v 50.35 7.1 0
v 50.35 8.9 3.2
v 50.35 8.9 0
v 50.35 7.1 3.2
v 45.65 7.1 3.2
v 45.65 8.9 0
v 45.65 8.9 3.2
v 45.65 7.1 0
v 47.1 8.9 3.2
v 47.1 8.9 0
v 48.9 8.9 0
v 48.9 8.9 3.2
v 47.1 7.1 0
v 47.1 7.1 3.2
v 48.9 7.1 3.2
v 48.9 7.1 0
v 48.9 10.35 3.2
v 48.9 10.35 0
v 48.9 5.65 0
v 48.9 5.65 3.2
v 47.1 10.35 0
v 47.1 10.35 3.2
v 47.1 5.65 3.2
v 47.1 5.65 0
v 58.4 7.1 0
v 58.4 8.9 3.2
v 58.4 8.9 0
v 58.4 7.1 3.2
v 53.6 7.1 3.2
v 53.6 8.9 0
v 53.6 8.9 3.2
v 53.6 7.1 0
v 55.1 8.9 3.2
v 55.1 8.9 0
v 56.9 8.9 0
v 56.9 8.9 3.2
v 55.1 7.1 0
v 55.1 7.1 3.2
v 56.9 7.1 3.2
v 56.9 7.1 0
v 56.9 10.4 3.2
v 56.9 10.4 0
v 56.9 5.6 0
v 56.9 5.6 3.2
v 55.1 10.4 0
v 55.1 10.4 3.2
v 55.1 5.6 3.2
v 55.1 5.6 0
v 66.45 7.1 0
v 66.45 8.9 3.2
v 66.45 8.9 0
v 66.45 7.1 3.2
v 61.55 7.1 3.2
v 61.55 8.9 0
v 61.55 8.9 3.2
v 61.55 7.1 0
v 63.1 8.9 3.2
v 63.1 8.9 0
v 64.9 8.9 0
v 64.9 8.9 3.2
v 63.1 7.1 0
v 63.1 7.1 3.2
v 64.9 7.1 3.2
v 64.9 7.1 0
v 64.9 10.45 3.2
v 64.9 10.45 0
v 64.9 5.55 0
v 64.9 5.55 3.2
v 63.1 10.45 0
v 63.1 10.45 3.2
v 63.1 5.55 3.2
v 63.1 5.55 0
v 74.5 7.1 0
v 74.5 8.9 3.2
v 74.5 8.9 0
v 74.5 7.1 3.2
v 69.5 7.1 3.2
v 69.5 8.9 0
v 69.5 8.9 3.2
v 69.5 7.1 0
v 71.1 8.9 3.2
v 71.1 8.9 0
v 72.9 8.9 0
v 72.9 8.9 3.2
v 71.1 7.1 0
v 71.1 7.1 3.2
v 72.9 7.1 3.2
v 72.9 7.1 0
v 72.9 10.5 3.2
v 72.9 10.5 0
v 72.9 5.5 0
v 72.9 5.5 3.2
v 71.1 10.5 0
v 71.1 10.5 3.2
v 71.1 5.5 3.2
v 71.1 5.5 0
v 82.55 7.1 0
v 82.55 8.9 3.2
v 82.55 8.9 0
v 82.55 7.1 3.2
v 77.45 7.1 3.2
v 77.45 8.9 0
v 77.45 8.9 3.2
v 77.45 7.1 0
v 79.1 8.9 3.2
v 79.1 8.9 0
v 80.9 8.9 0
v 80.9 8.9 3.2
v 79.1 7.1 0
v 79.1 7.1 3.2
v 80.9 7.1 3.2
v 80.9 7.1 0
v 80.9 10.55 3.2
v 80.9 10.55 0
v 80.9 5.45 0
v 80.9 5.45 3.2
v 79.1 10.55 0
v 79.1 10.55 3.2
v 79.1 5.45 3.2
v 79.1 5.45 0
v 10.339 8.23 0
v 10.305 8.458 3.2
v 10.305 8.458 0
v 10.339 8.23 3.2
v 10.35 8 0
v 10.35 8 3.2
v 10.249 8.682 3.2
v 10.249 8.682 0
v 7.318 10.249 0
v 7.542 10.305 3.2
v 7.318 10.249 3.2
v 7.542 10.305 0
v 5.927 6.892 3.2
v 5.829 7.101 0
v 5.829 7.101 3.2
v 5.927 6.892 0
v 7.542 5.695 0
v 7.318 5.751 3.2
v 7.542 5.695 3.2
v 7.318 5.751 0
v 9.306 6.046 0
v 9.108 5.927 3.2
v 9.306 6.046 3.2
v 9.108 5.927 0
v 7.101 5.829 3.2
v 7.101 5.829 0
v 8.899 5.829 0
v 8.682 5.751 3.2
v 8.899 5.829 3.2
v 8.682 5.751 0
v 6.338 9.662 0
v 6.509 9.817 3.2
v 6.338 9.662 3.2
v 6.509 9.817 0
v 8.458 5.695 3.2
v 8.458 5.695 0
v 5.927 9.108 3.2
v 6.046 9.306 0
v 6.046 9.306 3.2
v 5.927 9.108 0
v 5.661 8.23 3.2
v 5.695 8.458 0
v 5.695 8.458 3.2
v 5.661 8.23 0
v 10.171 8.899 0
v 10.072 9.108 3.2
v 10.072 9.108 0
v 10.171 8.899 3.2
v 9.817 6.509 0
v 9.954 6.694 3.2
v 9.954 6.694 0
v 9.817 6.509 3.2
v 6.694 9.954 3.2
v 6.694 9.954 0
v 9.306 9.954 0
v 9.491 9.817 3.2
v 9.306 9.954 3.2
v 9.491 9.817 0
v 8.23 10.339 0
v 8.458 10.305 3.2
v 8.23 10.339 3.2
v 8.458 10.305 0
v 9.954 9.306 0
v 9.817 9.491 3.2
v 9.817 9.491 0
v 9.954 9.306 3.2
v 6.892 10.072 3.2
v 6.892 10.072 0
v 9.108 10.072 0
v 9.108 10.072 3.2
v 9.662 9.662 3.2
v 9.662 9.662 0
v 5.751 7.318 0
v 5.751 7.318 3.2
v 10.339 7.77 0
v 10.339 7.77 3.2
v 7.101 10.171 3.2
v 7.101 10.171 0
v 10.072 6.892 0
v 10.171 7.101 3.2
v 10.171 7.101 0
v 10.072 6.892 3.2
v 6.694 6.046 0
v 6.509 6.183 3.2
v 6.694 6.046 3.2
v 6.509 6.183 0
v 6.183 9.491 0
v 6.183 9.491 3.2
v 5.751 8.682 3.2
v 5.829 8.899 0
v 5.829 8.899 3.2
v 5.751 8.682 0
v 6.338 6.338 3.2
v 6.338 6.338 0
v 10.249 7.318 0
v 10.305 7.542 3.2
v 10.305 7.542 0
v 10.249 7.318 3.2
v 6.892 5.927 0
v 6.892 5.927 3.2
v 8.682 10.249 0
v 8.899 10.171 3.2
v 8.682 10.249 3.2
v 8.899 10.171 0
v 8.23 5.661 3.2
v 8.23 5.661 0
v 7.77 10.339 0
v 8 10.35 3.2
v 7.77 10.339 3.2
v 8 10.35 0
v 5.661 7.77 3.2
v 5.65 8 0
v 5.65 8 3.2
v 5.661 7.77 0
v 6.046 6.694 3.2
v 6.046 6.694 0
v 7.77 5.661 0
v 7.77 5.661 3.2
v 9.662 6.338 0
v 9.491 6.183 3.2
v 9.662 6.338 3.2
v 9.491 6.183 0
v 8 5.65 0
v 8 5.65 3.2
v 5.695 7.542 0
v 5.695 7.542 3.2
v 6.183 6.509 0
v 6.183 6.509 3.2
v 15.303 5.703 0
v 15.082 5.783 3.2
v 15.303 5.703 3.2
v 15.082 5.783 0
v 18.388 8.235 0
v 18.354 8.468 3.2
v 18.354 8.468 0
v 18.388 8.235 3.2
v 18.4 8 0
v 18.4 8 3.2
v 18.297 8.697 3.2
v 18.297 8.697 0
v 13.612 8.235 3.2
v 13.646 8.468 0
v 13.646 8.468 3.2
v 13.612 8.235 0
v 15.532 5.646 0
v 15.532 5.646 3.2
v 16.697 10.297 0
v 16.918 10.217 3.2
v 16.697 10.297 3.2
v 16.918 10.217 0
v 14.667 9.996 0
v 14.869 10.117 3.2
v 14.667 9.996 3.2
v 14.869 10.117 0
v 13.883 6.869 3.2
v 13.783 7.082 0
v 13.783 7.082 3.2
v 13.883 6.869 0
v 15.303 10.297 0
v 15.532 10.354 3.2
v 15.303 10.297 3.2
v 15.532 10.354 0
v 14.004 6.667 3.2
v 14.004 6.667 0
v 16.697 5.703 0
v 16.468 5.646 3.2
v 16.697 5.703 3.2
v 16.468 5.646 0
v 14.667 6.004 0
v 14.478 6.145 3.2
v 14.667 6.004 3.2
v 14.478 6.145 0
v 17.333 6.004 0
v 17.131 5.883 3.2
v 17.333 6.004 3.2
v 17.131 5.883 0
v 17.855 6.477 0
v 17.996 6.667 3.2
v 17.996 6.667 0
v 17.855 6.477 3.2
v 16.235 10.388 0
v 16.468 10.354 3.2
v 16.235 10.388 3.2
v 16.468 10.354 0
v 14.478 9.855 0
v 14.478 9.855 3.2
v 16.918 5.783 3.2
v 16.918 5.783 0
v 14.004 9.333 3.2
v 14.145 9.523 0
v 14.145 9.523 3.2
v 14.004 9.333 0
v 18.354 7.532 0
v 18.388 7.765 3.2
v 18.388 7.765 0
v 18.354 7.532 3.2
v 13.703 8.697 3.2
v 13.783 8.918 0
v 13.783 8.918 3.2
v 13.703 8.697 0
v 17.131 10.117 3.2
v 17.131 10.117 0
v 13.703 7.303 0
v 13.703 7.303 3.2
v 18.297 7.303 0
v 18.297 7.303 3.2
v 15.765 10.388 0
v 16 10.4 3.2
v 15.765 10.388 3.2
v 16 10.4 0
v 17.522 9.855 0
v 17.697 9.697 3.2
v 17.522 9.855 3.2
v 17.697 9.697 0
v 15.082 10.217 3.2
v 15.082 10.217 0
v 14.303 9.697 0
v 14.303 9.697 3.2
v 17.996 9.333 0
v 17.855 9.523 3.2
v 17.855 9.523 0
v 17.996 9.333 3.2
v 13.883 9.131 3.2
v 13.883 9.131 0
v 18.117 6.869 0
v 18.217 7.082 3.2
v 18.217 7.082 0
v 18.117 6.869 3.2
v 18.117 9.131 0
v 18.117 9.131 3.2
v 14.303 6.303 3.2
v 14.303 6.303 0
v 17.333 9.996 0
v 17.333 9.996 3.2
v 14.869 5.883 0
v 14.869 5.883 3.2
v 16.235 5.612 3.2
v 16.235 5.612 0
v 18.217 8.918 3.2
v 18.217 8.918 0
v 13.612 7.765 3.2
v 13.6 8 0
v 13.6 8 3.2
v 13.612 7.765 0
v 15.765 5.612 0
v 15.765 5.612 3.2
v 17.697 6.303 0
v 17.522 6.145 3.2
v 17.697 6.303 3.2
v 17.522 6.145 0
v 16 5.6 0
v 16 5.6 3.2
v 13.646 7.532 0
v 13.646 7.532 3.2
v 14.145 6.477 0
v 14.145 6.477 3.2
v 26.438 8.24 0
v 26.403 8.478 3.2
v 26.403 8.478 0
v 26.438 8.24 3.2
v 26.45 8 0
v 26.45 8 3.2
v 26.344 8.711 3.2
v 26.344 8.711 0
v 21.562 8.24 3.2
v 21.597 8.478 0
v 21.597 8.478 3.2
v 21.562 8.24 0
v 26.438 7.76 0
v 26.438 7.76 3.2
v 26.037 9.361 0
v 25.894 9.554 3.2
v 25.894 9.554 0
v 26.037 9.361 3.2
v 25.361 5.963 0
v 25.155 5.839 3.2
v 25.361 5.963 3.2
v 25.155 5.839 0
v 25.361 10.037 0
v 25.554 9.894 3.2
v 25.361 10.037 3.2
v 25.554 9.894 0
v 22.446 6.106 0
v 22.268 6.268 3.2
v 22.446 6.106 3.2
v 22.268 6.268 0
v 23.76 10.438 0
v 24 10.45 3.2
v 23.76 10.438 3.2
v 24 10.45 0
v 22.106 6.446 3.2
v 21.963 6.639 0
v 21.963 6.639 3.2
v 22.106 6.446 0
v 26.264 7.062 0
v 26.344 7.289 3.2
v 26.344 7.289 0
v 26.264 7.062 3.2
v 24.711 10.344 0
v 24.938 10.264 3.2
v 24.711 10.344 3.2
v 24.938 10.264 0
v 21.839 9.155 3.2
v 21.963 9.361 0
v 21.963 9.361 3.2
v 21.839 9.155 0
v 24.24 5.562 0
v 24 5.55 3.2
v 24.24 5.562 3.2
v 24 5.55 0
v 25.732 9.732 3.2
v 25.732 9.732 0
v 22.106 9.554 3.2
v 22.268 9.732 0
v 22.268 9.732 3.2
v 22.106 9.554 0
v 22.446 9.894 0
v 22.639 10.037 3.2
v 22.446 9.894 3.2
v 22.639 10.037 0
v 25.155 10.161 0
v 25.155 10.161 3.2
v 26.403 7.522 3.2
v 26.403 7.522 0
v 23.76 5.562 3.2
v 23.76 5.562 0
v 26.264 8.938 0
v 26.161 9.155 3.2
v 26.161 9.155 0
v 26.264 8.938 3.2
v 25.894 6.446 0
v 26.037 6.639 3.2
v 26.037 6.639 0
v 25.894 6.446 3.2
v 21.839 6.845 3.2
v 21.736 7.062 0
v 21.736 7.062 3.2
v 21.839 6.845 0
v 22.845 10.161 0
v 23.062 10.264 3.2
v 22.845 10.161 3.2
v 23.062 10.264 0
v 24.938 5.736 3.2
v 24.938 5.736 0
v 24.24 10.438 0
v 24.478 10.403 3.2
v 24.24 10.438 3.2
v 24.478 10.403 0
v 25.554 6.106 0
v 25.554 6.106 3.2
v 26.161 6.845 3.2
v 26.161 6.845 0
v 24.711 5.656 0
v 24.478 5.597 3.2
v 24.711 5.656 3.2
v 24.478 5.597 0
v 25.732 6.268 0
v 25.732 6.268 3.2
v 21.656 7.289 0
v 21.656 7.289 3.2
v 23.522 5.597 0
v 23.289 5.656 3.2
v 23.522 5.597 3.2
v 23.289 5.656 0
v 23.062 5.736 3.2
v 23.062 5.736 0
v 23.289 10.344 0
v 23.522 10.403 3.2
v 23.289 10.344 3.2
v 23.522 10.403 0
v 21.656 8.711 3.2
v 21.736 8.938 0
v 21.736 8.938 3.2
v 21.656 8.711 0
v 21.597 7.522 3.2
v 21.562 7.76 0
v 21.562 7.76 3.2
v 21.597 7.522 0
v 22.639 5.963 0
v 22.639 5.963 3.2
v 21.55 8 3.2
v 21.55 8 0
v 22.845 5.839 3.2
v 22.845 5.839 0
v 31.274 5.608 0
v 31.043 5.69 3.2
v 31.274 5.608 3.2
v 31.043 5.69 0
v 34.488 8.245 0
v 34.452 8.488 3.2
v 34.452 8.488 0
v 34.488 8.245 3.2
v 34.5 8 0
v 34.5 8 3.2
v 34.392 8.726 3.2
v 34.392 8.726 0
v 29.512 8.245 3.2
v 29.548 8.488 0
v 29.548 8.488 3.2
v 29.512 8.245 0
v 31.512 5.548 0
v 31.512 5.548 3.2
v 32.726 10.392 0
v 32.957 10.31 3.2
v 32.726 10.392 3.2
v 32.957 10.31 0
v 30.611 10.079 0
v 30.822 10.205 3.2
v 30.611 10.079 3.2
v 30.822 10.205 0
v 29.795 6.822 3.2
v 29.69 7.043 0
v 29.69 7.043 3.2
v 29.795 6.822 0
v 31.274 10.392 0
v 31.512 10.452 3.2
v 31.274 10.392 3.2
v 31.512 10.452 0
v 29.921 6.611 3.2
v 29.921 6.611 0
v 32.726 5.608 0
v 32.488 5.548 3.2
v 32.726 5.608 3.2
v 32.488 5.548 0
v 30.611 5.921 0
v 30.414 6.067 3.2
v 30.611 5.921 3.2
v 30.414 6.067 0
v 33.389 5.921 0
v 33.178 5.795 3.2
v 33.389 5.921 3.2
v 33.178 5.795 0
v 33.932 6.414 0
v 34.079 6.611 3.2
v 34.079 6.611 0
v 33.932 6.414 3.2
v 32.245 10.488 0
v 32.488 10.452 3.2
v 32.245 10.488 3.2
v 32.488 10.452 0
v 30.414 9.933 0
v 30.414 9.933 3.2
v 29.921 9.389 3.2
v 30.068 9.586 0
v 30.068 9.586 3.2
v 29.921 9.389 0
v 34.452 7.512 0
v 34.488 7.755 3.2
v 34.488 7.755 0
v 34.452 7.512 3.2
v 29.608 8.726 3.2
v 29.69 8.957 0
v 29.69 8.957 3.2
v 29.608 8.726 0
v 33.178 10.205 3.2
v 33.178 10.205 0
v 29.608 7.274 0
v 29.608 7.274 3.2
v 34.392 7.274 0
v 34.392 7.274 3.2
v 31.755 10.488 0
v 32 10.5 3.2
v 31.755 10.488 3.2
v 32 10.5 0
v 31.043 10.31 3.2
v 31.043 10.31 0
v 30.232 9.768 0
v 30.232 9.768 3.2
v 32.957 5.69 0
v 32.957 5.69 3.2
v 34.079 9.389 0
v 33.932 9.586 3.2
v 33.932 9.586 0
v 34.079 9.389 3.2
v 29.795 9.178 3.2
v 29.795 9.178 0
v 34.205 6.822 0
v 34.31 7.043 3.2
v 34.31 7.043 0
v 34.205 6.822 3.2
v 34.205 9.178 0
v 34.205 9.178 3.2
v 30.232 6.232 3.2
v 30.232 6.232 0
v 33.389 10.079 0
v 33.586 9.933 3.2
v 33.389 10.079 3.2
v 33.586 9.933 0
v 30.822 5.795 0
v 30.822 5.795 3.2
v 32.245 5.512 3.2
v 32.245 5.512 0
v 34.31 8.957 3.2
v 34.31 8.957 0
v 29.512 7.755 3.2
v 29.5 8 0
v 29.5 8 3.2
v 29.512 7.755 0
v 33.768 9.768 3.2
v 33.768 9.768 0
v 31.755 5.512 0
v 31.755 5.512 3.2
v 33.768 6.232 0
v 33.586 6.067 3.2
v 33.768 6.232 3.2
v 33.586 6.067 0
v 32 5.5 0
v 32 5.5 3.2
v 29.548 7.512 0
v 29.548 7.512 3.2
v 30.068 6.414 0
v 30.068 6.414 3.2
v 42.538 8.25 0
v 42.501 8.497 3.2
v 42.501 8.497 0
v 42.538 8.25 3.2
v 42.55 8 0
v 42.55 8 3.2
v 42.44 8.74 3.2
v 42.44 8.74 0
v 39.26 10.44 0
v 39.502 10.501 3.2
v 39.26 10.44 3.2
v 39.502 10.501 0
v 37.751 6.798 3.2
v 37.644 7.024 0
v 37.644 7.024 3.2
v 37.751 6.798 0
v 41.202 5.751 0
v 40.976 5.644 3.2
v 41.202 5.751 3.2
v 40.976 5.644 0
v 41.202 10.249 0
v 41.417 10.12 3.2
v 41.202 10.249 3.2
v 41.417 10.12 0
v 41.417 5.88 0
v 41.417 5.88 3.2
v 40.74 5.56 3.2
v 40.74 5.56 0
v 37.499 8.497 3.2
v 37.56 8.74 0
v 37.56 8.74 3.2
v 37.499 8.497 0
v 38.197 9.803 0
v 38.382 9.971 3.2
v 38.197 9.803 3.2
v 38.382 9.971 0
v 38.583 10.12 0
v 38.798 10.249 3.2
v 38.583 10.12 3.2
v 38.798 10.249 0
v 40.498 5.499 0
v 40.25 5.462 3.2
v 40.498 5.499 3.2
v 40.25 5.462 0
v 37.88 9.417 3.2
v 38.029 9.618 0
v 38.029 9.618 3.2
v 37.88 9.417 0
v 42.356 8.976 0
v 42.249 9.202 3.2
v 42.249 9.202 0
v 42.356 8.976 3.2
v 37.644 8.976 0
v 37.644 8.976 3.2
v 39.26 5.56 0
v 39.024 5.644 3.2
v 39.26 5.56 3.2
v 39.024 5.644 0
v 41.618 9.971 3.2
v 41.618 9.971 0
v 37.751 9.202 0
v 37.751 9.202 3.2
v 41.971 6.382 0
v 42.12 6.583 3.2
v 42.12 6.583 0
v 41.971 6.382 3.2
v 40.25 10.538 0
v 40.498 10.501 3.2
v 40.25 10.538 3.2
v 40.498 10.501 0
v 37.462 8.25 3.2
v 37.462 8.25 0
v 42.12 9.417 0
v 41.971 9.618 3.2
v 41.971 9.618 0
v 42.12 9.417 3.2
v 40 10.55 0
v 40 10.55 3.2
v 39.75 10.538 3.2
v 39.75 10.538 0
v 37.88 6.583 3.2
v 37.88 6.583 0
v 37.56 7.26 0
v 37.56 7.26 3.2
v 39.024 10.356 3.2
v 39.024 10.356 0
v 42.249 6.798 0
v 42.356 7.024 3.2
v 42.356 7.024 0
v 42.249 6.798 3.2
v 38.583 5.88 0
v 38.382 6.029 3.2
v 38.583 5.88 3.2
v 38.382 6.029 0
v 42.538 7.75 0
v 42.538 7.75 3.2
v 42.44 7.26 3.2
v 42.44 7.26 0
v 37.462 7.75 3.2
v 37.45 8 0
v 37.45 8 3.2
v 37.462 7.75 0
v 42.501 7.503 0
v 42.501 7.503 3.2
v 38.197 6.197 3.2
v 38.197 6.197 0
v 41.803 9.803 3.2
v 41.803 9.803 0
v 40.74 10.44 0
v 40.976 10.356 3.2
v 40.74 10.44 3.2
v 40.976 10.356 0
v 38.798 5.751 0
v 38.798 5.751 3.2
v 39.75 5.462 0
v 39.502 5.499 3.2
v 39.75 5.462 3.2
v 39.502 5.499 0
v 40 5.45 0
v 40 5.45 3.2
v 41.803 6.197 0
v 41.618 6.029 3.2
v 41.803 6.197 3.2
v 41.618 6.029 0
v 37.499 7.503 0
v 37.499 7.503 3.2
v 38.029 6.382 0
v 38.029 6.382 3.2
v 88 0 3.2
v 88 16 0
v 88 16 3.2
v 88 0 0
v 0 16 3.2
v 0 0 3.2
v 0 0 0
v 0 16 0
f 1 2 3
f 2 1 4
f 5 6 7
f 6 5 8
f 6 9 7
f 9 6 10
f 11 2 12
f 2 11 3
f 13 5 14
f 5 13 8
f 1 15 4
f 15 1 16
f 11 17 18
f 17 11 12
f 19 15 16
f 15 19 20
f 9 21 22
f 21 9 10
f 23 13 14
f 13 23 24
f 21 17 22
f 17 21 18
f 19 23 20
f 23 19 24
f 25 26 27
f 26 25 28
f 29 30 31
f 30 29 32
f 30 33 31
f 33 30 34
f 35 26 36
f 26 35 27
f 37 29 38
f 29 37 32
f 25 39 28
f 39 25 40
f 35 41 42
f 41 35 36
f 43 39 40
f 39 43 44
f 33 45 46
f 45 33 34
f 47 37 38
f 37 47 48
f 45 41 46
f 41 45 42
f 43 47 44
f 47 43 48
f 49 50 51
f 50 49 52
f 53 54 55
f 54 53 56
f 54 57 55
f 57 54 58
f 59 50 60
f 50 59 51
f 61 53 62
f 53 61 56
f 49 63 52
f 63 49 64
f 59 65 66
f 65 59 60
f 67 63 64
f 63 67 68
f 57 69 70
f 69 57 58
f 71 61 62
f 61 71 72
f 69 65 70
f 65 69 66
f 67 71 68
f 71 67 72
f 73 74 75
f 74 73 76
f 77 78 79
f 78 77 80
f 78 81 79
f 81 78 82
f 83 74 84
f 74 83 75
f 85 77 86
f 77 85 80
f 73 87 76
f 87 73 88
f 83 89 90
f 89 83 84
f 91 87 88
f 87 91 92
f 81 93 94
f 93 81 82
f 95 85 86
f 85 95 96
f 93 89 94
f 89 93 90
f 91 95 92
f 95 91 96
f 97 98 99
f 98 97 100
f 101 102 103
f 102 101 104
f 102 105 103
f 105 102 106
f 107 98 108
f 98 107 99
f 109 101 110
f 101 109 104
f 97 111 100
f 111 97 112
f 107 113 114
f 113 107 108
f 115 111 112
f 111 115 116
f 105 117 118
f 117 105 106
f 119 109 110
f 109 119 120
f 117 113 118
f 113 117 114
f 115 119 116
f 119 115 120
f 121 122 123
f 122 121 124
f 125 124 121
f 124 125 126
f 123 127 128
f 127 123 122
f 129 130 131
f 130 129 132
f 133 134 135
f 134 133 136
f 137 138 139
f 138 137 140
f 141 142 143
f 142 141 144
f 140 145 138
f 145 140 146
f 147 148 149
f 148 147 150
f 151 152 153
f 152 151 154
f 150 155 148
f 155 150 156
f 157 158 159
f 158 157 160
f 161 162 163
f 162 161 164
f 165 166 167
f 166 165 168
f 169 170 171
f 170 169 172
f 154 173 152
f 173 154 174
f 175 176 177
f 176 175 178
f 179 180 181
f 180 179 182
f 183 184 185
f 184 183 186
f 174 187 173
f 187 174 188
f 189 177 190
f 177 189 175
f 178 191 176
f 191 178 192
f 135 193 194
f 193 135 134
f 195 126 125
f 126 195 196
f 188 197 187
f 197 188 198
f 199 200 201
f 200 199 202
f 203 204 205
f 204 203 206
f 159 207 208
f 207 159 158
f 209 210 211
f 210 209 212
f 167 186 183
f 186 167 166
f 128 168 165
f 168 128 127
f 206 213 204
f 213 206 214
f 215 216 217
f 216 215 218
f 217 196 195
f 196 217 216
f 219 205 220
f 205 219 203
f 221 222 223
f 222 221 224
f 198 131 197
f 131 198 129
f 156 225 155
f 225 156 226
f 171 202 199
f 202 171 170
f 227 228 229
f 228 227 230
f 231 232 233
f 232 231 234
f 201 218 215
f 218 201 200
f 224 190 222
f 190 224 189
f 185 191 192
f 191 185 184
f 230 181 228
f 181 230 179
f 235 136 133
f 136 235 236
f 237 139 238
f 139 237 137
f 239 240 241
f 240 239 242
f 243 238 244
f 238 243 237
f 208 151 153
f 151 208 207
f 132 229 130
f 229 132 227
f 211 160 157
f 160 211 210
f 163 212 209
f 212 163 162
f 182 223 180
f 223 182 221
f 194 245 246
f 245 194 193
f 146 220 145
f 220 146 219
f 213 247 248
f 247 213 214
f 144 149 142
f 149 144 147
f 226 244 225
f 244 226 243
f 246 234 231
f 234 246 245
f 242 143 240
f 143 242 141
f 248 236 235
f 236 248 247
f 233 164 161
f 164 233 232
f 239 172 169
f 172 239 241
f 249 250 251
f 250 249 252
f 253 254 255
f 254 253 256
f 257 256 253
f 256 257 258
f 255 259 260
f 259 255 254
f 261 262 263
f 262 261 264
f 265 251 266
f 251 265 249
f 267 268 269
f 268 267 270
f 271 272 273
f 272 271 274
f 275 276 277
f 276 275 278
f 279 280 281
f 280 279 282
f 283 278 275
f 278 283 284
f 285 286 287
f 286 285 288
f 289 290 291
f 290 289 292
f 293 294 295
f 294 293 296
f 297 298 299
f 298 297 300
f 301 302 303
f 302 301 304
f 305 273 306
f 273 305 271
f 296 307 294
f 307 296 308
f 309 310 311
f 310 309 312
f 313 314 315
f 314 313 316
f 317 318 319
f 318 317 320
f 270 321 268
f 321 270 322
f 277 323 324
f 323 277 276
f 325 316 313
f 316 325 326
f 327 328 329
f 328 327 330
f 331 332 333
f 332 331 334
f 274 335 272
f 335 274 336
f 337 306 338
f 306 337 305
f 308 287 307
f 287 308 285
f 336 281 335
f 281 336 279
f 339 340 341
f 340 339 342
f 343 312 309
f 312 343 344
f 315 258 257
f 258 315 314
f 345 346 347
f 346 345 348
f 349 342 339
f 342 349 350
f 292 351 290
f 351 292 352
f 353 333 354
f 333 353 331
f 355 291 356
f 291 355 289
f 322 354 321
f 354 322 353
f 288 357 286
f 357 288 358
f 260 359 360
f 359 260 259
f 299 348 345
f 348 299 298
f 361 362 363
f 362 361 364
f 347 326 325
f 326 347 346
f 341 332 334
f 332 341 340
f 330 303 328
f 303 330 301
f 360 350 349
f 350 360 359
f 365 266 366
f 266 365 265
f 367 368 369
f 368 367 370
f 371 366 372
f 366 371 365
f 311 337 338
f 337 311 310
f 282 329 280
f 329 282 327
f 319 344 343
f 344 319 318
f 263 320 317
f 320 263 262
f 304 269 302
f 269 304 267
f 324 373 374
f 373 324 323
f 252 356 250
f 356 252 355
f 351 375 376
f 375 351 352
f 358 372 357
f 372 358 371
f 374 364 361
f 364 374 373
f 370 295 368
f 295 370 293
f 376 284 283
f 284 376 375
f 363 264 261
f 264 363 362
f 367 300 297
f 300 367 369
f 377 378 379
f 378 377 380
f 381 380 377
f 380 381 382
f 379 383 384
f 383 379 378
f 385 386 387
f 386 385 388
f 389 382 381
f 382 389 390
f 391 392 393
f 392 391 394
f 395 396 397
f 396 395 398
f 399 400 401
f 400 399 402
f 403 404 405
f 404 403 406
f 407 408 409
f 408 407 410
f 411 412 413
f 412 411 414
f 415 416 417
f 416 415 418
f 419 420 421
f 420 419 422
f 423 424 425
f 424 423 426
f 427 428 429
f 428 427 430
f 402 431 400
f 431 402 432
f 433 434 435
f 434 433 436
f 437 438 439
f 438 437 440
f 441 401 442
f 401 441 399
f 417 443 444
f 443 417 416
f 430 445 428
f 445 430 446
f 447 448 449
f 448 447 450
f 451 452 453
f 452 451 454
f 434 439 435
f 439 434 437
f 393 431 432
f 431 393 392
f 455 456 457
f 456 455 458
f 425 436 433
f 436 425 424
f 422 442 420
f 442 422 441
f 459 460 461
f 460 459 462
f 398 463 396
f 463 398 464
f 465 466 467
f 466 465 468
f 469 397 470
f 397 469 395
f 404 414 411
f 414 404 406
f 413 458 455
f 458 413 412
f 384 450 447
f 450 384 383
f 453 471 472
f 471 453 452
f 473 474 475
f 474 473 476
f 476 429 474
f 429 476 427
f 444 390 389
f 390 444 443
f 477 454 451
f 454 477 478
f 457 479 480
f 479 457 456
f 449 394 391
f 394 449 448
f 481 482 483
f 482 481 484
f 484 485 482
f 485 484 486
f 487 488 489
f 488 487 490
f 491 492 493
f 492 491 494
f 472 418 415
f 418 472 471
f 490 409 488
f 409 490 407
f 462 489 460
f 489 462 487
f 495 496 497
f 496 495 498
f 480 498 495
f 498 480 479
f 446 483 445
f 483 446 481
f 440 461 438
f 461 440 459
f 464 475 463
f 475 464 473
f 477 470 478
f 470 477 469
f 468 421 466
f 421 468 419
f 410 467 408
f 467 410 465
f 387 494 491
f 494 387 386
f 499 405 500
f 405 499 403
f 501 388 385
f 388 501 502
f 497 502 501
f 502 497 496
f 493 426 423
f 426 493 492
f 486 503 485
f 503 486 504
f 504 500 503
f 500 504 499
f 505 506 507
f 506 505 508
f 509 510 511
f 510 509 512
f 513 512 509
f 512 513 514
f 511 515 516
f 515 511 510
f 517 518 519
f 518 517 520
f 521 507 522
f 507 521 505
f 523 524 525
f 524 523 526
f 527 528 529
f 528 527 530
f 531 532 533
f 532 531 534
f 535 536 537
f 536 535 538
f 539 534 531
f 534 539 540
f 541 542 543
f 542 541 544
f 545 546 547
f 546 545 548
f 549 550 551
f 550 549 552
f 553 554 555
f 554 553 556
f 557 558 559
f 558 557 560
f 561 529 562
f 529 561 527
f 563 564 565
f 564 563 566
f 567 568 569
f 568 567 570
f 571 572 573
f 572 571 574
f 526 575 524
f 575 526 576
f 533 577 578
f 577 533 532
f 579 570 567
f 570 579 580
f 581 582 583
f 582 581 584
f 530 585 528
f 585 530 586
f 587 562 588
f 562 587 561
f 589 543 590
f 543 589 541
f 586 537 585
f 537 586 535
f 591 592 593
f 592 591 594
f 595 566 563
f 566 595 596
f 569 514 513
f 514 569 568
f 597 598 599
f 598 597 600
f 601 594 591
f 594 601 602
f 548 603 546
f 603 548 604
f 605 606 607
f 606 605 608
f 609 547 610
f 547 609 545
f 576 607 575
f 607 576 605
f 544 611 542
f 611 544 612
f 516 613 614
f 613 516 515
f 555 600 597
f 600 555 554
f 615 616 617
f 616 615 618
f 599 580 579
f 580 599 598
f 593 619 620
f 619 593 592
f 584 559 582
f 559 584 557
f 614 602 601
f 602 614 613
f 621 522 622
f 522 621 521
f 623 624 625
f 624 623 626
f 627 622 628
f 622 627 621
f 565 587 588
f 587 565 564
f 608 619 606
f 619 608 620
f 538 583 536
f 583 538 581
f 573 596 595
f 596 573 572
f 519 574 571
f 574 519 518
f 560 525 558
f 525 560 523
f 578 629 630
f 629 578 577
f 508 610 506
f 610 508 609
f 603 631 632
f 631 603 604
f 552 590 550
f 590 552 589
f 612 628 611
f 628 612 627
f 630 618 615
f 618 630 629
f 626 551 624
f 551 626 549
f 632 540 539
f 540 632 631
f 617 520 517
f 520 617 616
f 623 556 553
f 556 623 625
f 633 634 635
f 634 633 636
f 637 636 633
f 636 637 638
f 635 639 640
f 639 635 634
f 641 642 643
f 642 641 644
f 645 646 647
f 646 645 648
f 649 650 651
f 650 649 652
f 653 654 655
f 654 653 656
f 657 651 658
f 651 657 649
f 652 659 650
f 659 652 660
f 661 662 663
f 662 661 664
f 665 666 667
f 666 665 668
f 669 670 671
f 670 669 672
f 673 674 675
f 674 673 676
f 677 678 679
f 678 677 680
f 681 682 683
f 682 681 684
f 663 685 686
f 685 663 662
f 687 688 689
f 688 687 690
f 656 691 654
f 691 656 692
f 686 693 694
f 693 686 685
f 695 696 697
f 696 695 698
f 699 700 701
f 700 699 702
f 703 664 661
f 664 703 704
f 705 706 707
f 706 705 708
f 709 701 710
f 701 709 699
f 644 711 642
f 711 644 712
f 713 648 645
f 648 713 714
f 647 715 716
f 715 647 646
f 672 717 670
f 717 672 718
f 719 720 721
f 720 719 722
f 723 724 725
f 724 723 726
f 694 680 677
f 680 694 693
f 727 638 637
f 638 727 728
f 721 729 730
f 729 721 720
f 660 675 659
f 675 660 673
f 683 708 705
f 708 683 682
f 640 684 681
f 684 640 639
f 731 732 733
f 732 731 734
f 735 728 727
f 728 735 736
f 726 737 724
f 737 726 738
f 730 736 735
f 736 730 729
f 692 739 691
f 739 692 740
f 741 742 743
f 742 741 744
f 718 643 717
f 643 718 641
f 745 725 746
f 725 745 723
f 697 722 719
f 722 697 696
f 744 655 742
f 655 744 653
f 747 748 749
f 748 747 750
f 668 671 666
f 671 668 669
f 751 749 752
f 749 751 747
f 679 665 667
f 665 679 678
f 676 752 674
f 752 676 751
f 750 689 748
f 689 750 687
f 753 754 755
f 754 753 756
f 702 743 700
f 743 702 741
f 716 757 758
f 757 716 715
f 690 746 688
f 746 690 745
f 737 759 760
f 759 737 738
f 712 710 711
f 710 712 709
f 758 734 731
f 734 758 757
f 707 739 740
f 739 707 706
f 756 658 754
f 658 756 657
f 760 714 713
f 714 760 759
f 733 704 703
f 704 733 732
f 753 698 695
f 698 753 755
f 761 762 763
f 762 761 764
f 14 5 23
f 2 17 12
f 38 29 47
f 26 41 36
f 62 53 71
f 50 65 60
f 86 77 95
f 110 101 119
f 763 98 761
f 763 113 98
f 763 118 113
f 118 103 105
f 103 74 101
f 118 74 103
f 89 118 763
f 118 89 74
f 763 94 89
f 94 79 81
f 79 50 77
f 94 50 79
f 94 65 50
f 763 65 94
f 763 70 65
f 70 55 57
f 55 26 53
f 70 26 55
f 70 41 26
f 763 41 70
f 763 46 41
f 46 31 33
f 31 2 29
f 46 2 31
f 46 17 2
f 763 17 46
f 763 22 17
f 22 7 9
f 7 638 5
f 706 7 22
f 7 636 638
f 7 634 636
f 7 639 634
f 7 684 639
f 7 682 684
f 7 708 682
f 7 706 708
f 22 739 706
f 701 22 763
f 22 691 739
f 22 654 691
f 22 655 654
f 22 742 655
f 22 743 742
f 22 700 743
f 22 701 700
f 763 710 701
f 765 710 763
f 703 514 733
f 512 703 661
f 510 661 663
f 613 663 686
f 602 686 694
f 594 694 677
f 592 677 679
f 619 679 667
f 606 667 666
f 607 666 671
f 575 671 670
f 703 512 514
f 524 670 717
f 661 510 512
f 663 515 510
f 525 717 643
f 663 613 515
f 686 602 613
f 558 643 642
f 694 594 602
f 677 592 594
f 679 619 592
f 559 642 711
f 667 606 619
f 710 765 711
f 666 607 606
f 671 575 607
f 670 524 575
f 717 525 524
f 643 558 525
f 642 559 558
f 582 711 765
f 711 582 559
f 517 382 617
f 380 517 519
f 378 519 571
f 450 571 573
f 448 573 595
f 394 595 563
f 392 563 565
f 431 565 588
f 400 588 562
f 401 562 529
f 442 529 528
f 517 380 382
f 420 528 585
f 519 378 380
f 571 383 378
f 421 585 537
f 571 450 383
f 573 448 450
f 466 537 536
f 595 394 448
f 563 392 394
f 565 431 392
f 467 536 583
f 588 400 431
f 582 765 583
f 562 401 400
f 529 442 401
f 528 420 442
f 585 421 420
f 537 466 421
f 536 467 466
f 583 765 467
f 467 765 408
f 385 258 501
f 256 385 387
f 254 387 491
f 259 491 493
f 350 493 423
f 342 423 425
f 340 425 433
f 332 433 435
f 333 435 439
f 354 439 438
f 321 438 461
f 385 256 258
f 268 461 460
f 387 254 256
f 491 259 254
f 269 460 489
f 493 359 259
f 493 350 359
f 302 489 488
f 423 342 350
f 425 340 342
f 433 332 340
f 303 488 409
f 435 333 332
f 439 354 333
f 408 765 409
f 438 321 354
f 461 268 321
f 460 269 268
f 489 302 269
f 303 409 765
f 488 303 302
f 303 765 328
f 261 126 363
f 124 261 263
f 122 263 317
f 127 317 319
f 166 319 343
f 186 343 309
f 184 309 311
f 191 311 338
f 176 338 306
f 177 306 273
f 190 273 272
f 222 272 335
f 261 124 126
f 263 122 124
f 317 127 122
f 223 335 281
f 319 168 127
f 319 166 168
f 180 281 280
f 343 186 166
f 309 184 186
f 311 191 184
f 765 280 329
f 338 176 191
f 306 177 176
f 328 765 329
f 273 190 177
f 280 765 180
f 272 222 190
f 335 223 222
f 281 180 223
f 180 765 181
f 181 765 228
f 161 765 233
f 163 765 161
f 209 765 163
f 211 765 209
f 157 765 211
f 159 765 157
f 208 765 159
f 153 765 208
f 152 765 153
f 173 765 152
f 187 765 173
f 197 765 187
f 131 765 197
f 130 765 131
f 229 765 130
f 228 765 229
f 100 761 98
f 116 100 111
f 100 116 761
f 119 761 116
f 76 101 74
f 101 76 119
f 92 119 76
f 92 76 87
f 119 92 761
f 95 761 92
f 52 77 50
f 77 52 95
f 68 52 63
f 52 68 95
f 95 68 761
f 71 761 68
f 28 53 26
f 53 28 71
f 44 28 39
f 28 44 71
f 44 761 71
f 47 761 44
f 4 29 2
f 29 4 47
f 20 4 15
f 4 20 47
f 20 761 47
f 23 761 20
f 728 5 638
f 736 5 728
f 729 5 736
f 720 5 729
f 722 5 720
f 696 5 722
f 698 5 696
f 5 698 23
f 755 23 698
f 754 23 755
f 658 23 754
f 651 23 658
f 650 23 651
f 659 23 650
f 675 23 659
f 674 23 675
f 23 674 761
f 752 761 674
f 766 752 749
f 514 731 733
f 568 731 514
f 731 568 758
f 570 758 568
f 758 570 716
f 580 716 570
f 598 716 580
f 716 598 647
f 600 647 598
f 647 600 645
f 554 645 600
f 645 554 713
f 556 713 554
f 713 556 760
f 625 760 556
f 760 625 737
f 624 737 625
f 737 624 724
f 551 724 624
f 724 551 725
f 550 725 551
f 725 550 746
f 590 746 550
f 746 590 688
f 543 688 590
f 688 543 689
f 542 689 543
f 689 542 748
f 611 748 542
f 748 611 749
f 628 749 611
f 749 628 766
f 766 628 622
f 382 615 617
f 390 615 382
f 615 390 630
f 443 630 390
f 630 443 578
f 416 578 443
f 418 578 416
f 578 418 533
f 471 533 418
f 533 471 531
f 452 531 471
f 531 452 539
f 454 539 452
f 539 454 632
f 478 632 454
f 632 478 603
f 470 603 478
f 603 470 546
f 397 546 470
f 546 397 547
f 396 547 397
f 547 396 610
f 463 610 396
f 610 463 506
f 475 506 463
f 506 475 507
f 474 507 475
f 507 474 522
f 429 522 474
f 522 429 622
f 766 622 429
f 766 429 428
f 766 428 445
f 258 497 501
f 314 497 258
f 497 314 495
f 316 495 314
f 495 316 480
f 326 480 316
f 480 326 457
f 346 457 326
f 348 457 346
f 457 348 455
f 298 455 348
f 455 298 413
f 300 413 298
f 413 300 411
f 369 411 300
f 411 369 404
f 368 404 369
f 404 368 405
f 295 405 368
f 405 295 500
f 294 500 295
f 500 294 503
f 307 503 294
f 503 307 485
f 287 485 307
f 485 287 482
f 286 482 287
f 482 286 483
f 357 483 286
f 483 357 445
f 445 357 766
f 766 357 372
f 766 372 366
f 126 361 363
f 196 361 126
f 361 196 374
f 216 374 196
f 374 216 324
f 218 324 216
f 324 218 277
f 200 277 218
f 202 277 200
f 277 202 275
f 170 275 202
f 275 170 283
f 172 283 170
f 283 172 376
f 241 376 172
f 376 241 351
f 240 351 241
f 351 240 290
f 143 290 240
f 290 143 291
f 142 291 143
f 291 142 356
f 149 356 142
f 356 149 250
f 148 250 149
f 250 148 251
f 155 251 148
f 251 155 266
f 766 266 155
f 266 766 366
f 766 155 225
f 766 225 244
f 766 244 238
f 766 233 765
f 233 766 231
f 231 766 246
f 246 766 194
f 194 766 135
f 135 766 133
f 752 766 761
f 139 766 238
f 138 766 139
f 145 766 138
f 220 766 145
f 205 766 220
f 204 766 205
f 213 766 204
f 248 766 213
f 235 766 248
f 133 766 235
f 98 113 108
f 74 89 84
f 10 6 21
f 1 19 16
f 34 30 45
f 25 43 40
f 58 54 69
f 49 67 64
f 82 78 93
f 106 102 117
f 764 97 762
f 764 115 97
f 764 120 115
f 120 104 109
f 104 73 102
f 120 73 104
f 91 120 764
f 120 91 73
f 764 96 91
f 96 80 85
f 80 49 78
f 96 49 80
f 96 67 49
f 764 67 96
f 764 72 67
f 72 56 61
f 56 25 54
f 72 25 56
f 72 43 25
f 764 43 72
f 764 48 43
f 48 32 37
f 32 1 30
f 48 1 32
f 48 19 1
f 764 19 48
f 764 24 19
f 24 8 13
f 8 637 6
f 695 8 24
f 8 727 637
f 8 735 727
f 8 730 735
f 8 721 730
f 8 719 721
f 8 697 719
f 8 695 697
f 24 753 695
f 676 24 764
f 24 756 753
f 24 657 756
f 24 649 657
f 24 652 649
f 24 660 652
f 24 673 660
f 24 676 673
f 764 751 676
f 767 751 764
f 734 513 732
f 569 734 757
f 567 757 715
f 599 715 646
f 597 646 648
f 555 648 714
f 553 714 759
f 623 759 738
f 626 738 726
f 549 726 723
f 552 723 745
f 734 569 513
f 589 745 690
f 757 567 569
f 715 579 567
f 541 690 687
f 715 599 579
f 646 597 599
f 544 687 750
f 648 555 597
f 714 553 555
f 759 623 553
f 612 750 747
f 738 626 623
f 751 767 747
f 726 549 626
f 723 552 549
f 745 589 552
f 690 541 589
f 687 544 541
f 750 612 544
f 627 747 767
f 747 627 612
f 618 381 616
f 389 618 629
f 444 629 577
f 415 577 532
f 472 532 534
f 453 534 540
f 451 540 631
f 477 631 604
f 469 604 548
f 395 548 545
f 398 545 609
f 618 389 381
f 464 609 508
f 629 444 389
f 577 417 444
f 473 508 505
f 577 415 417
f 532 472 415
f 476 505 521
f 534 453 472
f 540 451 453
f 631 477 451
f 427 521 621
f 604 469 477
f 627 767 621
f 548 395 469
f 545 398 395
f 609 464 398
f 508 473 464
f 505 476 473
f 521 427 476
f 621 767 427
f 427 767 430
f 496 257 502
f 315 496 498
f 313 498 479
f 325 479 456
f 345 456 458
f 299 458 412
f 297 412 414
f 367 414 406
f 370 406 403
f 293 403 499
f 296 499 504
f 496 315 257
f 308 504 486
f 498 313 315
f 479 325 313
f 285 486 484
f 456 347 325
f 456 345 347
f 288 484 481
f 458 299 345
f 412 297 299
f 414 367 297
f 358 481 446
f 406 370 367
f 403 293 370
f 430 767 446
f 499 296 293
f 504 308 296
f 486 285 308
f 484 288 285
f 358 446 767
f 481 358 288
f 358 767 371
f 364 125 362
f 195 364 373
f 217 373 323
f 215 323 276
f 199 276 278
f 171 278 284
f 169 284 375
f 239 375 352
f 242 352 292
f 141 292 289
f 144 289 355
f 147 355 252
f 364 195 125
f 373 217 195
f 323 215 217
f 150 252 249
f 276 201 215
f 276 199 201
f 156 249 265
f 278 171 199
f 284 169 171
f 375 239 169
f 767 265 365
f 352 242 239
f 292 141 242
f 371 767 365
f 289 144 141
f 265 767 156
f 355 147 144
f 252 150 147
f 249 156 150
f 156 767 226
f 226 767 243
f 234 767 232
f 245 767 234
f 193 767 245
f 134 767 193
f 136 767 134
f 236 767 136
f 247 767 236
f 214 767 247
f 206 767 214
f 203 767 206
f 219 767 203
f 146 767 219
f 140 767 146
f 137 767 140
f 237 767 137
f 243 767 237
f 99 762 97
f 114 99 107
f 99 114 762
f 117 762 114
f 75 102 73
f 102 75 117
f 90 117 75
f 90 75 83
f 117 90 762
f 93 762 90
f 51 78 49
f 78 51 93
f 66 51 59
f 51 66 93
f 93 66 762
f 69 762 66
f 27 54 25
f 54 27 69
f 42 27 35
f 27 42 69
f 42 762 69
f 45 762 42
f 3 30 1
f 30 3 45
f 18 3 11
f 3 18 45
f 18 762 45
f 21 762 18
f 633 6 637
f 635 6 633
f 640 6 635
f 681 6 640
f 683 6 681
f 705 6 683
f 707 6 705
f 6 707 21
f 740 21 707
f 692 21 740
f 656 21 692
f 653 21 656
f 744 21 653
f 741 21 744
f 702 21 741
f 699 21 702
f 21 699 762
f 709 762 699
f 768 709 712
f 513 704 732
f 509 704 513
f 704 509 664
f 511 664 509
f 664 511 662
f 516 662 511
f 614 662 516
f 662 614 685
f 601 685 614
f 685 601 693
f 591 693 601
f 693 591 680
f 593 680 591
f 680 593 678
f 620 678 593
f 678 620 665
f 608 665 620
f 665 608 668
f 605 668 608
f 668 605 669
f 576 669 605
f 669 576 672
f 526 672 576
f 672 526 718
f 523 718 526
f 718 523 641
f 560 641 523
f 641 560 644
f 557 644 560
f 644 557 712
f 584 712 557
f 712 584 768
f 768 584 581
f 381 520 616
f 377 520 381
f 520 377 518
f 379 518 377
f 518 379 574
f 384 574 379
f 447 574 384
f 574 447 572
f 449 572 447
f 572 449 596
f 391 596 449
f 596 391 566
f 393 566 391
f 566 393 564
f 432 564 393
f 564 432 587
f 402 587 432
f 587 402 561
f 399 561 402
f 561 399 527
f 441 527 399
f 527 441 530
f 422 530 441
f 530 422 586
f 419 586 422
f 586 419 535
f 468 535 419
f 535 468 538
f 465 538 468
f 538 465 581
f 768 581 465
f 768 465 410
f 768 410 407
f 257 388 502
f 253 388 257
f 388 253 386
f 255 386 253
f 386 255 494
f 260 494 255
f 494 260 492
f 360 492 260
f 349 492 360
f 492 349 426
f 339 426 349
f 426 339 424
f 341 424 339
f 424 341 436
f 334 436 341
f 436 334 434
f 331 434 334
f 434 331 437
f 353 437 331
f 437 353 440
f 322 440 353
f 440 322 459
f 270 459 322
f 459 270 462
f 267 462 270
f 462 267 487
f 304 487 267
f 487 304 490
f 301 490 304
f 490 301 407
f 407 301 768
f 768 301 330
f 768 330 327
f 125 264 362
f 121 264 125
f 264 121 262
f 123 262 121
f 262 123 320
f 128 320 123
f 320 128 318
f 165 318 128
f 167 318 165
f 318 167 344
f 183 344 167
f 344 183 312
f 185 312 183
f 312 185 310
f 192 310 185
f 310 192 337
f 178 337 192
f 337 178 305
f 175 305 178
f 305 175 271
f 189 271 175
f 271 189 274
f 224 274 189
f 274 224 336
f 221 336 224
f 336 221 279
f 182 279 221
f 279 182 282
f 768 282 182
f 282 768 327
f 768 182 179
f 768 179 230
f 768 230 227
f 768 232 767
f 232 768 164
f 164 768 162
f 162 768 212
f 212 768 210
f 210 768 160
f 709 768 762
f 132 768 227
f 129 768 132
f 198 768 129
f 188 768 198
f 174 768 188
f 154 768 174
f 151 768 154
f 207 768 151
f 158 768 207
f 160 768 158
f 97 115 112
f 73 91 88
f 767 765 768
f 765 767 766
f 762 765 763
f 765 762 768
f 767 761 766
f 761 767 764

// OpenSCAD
// Toleranz-Testteil: Technic-Loecher und Achsloecher in Abstufungen.
// Nominalmasse sind Startwerte (Loch ca. 4.8 mm, Achse ca. 4.8 mm Kreuz) und MUESSEN per Testdruck kalibriert werden.
$fn = 64;
hole_d = [4.7, 4.8, 4.9, 5.0, 5.1];
pitch = 8;
difference() {
    cube([pitch * (len(hole_d) * 2 + 1), 2 * pitch, 3.2]);
    for (i = [0 : len(hole_d) - 1]) {
        // runde Pinloecher
        translate([pitch * (i + 1), pitch, -1]) cylinder(d = hole_d[i], h = 6);
        // Kreuzachsloecher
        translate([pitch * (i + len(hole_d) + 1), pitch, 1.6]) {
            cube([hole_d[i], 1.8, 6], center = true);
            cube([1.8, hole_d[i], 6], center = true);
        }
    }
}
